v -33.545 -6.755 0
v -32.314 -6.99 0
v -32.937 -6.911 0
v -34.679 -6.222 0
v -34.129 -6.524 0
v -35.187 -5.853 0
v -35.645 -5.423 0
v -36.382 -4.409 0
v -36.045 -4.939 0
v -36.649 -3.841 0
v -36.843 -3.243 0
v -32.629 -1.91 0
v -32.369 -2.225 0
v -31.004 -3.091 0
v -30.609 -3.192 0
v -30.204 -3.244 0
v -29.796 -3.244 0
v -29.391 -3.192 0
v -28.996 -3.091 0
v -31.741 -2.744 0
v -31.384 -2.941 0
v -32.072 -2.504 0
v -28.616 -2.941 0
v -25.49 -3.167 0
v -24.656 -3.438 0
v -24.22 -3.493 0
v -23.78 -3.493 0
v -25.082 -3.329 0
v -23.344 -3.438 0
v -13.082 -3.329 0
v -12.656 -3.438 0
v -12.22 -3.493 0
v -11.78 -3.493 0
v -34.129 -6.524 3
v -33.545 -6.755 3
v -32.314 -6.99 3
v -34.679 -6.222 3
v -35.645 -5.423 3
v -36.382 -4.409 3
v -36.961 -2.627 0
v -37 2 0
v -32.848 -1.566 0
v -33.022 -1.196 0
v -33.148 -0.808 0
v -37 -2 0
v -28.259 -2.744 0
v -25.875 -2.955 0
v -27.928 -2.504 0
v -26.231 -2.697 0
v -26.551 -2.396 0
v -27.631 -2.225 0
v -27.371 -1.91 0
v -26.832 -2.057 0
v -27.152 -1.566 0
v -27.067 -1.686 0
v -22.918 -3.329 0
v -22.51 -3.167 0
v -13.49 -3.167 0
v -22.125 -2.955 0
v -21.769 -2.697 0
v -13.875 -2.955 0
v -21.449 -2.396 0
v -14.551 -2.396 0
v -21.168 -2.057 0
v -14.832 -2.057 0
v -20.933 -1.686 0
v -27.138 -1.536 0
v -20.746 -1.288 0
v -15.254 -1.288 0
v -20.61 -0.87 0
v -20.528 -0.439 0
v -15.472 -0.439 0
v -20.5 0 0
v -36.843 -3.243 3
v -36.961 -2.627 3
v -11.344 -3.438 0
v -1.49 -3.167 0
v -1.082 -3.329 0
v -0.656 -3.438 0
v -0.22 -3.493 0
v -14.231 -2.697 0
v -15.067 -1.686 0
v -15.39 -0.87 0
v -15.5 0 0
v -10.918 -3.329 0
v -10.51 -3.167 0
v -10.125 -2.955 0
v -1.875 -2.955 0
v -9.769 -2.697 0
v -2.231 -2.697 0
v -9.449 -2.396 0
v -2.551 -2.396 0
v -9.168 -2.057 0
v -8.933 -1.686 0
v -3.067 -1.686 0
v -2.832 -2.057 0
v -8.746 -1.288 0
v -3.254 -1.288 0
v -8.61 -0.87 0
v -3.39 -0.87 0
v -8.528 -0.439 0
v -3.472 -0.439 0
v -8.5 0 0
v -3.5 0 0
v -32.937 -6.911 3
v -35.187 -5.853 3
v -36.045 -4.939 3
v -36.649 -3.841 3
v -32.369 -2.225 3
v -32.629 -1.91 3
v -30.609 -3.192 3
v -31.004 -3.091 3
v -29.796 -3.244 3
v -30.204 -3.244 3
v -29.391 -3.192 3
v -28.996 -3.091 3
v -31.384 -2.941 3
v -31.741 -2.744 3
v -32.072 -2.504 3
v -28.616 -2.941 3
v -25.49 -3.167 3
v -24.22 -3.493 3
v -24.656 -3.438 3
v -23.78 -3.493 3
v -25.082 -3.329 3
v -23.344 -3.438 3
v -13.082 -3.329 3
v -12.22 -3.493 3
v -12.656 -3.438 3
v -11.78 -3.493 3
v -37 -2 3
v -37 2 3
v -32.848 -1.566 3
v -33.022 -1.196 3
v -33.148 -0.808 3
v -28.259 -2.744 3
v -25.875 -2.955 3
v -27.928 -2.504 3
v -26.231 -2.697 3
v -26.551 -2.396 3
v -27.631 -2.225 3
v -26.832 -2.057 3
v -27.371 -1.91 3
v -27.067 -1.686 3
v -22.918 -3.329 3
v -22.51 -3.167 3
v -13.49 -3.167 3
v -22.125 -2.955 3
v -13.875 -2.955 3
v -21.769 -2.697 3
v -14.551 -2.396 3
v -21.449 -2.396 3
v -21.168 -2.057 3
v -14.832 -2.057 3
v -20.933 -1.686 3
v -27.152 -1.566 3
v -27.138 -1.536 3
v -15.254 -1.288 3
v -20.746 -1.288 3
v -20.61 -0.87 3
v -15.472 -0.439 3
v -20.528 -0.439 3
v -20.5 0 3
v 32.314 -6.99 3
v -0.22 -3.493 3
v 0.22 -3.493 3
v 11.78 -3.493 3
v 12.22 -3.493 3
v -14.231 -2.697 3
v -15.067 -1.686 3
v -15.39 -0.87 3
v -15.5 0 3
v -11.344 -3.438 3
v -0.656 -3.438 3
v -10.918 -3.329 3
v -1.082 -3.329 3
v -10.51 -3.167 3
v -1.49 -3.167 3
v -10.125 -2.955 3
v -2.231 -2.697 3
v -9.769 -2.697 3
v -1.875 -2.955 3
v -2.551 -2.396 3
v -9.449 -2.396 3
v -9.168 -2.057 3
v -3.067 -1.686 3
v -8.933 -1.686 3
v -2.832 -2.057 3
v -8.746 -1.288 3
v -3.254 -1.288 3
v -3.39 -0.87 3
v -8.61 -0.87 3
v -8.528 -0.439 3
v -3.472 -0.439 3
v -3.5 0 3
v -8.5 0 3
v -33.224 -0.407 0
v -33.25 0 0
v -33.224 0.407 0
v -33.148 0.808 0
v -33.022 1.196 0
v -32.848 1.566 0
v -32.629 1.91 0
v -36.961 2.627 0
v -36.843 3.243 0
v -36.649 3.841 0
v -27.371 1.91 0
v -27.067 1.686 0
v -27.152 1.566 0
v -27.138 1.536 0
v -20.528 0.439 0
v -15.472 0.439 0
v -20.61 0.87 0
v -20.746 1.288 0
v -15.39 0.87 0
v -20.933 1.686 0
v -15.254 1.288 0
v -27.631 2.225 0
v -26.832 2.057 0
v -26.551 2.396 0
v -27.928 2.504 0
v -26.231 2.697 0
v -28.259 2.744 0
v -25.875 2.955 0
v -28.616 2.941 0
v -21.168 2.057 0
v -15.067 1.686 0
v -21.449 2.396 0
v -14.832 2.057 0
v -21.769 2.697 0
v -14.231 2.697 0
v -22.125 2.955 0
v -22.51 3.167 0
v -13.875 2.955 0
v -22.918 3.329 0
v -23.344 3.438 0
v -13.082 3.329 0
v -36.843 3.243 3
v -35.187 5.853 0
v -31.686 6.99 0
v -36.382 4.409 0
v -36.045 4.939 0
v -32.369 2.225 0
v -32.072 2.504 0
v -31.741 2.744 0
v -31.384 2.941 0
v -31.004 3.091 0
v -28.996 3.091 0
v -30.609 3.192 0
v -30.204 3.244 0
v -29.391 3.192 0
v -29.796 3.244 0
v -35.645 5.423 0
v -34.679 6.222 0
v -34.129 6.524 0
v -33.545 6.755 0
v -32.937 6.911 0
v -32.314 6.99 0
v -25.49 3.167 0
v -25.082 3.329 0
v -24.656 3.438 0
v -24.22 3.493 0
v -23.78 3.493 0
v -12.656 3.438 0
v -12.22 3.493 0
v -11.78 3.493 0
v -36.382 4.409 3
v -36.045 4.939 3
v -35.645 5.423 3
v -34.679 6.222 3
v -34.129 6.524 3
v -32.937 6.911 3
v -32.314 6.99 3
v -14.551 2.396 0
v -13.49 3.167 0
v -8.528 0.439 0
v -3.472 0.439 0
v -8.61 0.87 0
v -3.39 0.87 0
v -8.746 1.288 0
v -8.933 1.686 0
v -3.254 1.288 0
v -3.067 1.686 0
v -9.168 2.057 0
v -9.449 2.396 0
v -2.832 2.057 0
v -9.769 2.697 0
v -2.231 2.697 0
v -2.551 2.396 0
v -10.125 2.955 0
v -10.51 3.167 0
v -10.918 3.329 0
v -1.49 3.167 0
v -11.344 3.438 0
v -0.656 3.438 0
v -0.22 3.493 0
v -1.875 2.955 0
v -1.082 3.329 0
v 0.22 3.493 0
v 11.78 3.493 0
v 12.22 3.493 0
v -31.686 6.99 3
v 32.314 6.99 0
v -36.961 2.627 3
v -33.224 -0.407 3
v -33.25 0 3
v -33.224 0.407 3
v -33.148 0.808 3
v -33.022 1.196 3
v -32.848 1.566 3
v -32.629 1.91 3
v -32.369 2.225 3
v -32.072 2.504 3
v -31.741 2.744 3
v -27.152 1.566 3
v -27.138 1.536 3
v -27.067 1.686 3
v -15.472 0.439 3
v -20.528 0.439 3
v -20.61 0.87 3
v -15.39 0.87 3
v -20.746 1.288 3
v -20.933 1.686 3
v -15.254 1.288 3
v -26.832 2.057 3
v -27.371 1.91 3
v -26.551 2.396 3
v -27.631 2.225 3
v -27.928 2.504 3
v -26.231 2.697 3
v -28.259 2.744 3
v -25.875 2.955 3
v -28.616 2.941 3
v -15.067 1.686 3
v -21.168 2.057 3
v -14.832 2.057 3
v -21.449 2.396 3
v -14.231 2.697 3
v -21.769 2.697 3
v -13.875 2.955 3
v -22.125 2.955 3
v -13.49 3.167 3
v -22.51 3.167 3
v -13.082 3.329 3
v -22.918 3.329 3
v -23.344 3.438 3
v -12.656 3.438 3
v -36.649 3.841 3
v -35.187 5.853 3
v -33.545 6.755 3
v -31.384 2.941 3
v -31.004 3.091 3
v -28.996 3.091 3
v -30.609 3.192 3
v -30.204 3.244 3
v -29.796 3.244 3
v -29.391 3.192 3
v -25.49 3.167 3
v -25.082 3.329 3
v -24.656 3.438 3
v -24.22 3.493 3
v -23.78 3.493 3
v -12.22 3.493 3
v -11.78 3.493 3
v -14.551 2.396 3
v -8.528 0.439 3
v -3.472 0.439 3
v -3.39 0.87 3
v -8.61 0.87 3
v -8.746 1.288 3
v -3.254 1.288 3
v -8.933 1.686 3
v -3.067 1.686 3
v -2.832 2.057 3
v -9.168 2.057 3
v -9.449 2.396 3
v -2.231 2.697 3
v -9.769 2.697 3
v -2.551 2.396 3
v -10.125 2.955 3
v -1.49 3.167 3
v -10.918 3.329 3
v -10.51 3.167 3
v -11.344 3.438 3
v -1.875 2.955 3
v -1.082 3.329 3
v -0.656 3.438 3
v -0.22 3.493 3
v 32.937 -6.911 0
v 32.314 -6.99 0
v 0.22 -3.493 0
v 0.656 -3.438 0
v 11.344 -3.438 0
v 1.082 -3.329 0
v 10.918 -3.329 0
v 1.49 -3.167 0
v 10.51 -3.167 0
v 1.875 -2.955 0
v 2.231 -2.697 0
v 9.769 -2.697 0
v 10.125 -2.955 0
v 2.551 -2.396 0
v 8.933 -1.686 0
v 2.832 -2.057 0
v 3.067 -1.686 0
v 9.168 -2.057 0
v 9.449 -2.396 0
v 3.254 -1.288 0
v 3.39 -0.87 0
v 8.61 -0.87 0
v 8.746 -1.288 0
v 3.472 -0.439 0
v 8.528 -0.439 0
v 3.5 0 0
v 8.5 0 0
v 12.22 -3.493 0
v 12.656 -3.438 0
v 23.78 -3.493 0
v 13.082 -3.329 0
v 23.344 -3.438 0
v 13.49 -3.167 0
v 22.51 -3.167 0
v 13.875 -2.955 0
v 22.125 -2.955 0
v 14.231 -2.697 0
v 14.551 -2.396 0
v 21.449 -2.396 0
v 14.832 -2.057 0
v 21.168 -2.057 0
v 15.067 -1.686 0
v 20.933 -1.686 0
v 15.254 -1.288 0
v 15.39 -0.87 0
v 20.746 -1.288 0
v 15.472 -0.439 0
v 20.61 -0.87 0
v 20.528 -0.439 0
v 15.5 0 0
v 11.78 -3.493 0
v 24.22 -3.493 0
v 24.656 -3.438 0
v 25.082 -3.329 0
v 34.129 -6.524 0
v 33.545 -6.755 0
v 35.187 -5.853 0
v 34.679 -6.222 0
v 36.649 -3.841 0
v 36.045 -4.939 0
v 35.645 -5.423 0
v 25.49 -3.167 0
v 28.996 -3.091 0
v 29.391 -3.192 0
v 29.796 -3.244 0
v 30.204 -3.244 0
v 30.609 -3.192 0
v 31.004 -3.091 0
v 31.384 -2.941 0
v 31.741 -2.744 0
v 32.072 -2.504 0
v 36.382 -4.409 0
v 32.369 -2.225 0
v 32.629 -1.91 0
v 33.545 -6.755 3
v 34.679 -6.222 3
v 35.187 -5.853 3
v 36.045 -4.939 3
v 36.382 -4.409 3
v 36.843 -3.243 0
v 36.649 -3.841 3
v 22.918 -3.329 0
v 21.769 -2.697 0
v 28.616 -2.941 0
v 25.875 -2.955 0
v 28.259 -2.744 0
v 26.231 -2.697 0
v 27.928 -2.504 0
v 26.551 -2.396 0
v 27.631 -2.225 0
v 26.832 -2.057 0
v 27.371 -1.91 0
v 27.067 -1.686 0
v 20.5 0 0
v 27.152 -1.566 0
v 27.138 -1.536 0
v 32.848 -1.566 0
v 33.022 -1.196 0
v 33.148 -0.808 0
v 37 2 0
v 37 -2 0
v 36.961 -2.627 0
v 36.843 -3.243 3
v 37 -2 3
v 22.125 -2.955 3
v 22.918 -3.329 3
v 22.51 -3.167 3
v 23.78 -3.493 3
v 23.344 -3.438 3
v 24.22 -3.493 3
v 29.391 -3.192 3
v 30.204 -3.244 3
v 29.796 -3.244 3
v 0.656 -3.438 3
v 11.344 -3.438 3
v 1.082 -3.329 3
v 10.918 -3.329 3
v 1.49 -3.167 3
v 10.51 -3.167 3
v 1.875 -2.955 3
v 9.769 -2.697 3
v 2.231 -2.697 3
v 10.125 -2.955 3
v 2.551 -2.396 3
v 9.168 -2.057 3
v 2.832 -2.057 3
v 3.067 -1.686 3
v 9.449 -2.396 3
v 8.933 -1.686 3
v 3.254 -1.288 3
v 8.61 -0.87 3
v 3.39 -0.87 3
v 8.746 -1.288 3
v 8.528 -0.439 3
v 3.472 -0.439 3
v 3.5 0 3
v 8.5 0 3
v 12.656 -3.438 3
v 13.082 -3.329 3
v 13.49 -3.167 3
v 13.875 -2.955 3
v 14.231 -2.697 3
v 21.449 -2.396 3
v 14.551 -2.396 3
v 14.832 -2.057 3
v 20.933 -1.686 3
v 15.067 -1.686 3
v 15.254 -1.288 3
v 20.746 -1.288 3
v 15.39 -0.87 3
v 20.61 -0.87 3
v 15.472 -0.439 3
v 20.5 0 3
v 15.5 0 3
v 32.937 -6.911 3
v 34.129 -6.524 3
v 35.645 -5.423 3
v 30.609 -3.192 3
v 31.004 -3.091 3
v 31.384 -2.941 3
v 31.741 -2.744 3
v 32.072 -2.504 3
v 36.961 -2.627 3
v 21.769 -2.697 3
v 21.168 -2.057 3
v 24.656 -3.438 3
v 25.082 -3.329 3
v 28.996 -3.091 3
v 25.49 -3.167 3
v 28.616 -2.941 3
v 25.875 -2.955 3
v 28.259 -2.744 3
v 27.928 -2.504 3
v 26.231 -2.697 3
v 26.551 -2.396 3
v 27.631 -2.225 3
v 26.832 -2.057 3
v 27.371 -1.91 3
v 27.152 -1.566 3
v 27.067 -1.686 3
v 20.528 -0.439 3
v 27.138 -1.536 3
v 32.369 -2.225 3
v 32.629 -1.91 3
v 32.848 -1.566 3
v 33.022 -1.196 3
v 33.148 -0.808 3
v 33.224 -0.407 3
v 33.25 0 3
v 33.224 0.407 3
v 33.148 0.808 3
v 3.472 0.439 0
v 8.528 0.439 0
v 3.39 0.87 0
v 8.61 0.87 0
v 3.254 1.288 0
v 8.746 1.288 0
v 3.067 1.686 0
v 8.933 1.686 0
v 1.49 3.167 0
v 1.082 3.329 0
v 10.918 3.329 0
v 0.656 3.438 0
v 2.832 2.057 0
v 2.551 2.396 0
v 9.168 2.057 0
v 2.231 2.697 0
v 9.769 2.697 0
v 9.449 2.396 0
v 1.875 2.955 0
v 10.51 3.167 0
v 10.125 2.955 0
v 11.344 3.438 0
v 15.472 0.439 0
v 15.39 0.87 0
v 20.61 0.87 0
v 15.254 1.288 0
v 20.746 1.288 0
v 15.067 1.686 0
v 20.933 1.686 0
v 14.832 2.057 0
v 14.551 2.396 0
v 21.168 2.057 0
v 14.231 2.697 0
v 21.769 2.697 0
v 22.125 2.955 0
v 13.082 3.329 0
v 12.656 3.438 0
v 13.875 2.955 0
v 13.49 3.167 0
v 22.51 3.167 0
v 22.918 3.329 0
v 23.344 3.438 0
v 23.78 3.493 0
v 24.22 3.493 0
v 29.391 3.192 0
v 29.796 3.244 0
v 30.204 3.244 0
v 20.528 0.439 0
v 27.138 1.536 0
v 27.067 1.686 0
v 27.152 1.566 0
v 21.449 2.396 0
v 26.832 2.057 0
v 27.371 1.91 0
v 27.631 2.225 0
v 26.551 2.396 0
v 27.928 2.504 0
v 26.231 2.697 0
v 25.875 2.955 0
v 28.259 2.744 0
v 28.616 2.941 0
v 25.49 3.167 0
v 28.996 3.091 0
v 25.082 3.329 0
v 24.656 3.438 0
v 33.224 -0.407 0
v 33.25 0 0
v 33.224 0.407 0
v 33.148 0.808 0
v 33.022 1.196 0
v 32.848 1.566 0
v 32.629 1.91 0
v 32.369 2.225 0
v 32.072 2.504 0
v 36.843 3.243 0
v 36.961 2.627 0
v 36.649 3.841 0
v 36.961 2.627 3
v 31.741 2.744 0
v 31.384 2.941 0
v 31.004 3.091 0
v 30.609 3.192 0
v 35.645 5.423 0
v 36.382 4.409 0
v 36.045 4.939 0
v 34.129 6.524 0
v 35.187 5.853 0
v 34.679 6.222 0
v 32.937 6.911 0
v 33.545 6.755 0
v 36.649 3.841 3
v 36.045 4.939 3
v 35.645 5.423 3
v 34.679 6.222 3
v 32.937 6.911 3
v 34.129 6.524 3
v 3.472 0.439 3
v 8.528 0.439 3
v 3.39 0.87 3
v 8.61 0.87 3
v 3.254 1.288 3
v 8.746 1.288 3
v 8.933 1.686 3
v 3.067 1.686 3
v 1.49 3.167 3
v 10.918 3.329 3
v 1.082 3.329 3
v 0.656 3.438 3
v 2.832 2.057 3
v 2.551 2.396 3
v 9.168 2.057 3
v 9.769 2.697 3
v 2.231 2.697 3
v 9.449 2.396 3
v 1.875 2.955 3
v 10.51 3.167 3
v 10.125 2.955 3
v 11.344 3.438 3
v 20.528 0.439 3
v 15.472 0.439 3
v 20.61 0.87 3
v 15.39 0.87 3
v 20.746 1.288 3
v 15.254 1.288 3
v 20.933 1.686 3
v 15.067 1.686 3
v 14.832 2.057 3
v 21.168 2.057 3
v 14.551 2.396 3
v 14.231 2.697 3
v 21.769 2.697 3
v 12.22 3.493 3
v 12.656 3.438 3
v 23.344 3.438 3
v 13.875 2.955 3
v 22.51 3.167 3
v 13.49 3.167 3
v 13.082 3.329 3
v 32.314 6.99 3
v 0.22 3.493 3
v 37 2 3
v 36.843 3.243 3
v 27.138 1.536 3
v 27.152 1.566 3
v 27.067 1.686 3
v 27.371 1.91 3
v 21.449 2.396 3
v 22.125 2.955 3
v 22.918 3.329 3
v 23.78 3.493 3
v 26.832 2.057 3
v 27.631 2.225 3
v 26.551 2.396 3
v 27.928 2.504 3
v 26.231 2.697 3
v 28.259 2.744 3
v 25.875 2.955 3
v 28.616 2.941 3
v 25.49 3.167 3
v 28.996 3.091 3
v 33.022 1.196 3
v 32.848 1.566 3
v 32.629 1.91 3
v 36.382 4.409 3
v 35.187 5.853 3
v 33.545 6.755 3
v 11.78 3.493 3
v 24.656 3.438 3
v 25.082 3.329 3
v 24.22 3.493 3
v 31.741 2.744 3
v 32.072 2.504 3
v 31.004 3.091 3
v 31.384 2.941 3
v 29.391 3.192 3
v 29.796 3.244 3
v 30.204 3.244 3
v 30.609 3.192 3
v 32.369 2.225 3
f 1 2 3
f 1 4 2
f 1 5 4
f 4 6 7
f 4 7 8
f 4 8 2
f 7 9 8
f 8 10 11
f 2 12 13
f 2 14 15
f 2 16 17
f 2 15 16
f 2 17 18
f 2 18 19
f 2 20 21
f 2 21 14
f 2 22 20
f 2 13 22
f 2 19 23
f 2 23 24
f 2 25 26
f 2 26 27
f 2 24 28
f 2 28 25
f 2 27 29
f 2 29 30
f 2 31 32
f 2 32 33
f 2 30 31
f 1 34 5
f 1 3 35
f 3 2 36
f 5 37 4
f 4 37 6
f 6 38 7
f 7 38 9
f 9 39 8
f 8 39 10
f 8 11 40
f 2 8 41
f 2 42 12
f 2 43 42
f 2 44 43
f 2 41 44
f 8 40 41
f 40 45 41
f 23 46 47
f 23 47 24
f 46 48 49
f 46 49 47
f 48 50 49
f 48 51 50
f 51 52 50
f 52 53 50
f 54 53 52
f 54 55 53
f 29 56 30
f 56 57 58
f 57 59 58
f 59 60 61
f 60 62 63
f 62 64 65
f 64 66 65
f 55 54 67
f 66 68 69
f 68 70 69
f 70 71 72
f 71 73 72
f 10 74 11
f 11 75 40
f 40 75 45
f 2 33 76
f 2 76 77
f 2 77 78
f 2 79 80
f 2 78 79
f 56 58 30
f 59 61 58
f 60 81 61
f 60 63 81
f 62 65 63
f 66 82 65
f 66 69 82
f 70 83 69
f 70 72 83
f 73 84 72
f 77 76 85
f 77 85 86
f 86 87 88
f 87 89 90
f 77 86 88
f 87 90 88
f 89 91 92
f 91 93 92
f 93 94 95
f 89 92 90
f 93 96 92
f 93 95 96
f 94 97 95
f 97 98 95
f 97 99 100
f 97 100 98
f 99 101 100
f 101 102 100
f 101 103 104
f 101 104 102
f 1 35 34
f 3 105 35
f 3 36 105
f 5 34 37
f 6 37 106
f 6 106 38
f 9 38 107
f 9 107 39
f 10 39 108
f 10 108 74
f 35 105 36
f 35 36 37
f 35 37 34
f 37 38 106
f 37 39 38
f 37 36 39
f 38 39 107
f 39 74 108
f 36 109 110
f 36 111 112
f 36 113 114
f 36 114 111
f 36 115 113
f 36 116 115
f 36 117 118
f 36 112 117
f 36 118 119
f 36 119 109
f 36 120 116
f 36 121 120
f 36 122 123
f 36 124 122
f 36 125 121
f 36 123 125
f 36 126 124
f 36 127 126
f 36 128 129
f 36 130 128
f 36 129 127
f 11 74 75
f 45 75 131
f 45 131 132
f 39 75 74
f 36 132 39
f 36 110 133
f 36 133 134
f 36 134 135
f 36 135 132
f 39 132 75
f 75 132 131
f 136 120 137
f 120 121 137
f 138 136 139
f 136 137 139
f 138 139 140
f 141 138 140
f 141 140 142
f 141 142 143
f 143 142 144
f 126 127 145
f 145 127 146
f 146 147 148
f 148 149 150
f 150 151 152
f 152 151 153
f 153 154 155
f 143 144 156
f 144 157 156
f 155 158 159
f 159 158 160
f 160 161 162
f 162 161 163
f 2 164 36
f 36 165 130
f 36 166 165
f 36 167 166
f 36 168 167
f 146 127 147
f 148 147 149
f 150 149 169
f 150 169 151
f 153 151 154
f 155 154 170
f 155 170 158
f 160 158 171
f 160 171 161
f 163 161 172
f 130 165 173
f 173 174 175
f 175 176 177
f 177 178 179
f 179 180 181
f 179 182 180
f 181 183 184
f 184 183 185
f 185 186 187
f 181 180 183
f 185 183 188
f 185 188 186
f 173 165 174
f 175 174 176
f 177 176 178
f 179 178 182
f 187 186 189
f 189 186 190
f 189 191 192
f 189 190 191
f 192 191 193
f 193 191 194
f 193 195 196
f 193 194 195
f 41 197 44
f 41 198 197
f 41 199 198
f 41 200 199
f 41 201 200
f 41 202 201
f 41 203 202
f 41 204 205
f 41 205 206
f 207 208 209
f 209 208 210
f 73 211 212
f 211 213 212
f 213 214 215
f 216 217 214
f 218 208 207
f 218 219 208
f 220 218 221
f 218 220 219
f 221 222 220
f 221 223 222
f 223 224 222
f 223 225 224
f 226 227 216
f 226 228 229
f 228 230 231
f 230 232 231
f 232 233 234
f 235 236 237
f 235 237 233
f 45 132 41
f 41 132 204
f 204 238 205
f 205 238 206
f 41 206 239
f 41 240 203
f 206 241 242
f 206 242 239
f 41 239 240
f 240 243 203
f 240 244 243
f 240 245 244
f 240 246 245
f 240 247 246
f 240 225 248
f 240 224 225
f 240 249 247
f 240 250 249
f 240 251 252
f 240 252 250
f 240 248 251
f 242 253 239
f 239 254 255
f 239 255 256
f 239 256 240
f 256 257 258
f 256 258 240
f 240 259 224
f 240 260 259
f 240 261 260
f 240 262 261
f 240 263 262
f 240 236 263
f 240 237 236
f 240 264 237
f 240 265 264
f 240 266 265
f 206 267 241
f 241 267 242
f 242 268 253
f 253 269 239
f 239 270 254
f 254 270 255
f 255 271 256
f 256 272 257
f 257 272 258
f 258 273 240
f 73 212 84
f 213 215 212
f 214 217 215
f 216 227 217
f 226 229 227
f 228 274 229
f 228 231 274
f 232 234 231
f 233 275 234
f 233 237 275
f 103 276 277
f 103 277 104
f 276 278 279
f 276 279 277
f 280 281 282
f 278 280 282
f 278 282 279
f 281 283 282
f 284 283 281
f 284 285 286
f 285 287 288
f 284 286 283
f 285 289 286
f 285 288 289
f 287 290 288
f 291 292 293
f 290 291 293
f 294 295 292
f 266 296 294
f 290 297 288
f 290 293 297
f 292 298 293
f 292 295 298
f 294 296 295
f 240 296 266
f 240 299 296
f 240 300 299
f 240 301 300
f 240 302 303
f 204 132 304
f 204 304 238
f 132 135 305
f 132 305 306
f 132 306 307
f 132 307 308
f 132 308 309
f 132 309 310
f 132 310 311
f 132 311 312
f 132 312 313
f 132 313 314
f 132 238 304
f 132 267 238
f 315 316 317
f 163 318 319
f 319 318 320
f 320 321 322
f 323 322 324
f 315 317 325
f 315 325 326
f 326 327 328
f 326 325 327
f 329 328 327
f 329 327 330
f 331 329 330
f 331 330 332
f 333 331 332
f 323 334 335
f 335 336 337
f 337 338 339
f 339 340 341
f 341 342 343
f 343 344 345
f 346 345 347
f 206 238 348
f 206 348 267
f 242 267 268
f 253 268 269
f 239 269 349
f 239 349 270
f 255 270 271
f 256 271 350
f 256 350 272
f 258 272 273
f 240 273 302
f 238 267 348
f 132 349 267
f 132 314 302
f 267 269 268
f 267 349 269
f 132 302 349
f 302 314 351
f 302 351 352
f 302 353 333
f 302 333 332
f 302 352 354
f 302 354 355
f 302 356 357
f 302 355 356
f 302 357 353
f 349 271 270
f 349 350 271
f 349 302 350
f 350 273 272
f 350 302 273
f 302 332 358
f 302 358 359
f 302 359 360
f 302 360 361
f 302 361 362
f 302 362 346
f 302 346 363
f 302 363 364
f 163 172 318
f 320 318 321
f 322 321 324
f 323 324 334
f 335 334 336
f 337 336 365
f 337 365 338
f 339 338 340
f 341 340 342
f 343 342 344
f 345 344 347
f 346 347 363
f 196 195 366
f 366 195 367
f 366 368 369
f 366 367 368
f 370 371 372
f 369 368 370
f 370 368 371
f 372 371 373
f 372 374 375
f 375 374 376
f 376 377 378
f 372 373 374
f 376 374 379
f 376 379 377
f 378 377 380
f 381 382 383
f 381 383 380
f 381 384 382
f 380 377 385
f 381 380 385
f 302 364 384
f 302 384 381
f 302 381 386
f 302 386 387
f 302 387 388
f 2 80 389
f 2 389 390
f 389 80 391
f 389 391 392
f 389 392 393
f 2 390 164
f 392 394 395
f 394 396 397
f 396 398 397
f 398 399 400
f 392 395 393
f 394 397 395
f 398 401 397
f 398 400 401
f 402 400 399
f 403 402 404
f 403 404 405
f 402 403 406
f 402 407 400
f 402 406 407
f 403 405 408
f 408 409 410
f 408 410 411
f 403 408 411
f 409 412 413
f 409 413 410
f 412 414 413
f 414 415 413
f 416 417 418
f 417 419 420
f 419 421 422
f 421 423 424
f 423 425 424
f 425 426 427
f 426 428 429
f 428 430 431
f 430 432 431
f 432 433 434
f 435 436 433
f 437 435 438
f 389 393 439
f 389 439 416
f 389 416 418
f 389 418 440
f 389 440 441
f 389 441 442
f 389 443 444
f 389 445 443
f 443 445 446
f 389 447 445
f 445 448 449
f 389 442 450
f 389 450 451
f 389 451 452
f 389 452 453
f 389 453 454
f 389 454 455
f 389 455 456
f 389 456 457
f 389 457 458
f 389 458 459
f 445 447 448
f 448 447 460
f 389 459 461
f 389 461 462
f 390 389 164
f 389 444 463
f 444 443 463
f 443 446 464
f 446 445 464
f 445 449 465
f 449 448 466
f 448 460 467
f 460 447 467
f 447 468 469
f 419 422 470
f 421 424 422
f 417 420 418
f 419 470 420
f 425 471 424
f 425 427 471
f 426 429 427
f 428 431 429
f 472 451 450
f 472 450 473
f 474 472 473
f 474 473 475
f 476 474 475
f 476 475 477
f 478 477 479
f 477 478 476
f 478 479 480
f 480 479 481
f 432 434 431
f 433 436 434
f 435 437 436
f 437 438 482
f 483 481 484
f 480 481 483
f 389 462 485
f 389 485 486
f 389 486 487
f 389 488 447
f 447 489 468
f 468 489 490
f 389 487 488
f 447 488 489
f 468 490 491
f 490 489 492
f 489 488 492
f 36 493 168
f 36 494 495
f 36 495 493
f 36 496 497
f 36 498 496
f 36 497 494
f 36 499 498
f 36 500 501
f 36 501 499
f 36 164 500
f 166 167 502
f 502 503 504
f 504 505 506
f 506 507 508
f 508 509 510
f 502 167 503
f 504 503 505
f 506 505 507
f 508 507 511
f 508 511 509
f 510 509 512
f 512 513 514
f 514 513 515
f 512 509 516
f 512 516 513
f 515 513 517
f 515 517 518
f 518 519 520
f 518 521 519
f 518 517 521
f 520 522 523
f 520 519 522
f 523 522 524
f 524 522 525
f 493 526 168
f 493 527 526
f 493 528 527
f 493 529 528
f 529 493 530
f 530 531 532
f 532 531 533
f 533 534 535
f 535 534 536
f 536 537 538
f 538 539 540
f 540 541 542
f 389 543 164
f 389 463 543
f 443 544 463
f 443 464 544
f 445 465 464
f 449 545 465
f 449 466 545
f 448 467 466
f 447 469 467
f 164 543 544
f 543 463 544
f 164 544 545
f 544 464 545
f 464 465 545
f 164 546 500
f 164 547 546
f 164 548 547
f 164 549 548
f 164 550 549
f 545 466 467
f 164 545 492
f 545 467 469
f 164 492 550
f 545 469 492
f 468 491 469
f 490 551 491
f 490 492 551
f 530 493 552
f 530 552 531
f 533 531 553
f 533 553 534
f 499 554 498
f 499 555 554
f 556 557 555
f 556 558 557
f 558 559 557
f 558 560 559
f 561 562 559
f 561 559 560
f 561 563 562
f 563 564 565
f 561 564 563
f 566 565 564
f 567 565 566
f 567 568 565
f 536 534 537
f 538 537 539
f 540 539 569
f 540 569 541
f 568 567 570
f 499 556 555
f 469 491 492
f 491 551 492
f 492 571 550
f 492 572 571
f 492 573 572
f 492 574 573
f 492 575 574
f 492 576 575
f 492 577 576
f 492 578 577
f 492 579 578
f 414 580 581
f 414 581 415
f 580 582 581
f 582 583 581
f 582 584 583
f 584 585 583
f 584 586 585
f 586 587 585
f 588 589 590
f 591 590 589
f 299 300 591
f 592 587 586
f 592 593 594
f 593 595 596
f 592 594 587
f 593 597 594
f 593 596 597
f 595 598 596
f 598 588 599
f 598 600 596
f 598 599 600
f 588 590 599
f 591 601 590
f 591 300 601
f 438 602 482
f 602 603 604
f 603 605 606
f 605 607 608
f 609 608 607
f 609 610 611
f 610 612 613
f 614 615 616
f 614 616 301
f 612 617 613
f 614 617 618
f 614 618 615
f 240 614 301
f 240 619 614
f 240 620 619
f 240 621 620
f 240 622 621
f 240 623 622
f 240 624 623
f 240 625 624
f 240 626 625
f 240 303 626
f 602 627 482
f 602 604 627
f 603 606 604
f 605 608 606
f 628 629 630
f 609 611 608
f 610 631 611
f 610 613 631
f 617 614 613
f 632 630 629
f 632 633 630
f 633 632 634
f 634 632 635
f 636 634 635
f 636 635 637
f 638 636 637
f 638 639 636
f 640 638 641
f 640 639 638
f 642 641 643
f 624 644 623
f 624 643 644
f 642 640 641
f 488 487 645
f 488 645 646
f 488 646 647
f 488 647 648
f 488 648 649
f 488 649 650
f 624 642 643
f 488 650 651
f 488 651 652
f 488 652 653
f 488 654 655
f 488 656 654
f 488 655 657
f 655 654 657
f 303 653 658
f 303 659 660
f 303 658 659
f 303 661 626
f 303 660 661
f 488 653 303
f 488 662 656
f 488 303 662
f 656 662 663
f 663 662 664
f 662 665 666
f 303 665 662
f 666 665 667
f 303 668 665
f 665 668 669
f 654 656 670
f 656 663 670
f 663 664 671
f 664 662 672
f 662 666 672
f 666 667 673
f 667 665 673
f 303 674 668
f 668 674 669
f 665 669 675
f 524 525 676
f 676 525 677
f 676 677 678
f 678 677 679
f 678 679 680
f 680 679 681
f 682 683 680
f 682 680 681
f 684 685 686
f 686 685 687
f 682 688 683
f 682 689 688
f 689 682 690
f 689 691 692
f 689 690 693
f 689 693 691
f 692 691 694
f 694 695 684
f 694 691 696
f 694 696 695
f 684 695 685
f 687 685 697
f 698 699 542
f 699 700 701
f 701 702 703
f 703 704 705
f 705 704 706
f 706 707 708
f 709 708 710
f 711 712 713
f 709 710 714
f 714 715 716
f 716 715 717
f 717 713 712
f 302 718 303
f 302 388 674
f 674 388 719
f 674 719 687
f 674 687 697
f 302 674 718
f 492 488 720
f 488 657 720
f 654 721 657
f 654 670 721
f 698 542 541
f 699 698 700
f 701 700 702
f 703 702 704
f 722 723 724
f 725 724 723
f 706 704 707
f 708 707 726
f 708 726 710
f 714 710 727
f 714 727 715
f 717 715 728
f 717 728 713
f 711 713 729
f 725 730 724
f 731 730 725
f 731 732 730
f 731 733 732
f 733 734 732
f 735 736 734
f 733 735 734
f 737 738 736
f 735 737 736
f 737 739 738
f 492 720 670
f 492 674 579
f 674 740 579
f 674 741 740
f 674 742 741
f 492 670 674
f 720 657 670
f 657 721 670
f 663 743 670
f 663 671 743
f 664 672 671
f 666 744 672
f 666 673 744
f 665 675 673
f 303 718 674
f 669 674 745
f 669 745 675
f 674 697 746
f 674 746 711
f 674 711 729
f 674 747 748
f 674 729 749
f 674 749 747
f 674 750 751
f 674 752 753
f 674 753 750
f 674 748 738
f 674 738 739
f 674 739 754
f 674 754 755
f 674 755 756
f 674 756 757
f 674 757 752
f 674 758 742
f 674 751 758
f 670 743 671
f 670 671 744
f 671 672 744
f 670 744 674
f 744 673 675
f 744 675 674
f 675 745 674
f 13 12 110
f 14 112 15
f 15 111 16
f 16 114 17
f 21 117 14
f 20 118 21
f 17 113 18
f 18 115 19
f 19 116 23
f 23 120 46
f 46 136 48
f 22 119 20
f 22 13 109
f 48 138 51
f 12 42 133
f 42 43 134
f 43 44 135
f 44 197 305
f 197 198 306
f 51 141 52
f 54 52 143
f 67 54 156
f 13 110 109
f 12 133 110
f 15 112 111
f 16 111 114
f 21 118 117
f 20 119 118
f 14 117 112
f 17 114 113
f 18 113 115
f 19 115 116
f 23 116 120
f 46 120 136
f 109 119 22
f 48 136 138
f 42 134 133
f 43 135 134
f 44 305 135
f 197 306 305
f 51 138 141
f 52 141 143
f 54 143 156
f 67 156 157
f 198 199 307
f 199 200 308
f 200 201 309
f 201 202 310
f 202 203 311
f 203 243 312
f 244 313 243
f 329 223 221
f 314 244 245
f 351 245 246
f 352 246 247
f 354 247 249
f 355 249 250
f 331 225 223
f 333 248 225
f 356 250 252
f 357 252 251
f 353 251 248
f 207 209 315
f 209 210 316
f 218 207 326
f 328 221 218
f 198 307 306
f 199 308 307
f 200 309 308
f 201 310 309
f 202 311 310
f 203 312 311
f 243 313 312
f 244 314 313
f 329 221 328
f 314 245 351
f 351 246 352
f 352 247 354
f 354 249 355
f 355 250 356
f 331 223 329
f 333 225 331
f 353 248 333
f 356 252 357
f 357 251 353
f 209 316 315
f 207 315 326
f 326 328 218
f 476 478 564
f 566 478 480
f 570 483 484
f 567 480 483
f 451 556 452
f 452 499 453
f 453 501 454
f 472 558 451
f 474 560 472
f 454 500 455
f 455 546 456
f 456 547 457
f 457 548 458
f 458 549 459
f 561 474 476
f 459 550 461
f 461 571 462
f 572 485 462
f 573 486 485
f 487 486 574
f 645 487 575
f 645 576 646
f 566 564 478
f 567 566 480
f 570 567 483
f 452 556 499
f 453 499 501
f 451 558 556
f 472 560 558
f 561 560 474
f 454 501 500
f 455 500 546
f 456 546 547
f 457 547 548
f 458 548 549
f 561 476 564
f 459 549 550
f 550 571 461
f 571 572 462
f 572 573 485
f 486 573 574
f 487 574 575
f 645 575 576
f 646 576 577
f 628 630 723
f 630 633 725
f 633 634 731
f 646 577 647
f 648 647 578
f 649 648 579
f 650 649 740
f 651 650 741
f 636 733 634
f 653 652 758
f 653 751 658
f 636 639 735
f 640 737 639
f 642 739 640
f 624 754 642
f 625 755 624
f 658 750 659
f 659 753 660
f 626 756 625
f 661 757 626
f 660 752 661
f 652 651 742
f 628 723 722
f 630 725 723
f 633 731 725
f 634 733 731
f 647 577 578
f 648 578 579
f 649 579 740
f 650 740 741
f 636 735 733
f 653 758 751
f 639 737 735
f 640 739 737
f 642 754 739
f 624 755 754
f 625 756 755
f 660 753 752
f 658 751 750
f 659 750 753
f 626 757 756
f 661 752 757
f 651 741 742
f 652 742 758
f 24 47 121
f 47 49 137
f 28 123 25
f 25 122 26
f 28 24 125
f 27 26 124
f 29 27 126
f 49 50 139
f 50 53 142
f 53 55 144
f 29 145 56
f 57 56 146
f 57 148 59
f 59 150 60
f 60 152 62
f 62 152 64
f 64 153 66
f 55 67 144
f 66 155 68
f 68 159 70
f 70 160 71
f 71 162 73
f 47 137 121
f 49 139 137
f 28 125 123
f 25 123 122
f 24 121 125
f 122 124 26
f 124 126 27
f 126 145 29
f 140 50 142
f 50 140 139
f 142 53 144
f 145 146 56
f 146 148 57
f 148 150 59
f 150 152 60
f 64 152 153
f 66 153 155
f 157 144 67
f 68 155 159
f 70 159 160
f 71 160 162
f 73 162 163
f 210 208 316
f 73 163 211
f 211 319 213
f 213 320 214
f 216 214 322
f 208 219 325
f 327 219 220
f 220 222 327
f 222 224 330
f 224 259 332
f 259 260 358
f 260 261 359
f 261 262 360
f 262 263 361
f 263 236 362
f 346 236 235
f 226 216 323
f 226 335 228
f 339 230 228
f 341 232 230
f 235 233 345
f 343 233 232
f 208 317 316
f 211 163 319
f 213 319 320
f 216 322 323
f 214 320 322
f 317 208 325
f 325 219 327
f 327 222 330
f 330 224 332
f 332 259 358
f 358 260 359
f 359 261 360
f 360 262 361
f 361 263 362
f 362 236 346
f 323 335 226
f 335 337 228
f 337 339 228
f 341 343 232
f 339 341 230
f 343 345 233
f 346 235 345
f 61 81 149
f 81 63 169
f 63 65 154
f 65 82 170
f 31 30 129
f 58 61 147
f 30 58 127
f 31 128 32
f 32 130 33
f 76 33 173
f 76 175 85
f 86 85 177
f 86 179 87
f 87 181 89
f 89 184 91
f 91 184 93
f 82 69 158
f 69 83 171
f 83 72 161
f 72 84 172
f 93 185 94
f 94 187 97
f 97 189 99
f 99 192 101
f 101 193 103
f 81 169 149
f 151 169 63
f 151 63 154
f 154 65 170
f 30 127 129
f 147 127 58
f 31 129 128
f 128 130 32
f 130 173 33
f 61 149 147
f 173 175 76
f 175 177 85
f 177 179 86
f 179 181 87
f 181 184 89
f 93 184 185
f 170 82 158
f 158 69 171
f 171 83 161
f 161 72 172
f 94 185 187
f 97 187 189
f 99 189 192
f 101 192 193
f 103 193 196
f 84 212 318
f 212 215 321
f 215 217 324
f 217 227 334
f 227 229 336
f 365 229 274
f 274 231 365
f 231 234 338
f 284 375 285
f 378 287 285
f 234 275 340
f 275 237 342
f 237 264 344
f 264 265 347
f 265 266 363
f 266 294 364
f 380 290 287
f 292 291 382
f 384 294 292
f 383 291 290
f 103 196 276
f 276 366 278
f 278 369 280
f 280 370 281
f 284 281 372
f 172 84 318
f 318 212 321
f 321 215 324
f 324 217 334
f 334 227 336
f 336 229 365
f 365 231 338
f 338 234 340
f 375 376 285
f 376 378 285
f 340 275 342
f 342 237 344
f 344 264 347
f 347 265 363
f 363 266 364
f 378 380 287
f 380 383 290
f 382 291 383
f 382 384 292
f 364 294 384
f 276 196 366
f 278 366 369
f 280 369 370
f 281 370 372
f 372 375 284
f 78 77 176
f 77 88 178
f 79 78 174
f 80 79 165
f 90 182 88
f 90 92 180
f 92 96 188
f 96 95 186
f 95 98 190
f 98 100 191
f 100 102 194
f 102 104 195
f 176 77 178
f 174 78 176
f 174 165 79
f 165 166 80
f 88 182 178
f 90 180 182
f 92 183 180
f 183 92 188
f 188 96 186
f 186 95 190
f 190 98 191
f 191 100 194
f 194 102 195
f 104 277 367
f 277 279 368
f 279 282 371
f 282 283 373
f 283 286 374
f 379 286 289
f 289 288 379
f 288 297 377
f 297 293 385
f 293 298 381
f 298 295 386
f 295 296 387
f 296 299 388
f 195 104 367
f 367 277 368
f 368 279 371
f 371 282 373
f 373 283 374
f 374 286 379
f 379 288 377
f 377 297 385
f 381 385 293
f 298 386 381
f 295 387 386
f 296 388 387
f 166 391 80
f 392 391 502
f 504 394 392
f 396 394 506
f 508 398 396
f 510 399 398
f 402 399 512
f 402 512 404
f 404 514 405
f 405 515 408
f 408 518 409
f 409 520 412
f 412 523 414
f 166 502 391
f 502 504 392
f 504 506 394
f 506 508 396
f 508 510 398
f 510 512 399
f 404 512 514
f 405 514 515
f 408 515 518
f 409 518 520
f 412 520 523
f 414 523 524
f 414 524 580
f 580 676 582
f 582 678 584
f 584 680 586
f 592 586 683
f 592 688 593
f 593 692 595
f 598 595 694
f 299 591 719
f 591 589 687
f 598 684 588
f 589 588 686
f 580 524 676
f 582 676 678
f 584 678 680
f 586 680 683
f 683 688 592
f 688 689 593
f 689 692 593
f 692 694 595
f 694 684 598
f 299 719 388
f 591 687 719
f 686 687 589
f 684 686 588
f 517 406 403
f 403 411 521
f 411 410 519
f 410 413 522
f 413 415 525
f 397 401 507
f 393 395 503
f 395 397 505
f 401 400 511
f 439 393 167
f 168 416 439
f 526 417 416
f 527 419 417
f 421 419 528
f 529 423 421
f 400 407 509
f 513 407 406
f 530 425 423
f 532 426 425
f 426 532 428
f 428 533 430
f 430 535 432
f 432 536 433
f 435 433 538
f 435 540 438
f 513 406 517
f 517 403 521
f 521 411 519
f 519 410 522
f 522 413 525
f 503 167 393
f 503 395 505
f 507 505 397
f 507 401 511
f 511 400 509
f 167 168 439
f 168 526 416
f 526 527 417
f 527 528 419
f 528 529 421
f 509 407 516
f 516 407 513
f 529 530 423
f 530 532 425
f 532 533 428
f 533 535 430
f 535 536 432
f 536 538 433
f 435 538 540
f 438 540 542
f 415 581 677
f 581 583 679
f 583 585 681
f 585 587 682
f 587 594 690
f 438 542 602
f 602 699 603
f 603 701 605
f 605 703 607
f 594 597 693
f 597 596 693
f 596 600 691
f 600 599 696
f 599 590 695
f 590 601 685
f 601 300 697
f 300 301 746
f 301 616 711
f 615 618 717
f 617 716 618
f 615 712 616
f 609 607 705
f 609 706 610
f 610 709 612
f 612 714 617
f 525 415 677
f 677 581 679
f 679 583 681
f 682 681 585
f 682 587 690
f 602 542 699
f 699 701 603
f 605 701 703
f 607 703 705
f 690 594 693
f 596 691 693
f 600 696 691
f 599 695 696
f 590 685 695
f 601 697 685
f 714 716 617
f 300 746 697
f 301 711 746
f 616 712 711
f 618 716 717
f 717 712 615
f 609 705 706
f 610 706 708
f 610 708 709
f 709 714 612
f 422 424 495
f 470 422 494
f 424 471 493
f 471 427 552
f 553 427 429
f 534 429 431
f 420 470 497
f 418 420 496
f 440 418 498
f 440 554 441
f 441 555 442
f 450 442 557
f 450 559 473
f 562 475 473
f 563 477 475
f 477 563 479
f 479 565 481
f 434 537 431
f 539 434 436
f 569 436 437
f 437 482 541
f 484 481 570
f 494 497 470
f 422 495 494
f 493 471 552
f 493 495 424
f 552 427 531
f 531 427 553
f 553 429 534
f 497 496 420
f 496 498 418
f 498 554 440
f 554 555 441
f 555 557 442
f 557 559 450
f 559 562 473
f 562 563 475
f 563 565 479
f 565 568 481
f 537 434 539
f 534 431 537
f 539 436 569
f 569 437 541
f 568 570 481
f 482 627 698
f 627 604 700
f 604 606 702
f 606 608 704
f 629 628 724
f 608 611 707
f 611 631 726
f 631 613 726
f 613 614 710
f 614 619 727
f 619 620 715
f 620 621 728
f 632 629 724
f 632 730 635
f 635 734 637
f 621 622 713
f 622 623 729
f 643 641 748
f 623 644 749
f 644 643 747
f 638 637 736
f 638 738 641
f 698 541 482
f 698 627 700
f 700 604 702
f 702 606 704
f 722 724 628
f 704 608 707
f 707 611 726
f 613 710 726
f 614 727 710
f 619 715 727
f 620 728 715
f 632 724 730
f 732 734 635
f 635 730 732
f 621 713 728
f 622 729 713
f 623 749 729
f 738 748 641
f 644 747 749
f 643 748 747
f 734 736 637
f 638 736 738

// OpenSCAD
$fn = 50;

difference() {
	union() {
		hull() {
			translate(v = [-32.0, 2.0, 0]) {
				cylinder(h = 3, r = 5);
			}
			translate(v = [32.0, 2.0, 0]) {
				cylinder(h = 3, r = 5);
			}
			translate(v = [-32.0, -2.0, 0]) {
				cylinder(h = 3, r = 5);
			}
			translate(v = [32.0, -2.0, 0]) {
				cylinder(h = 3, r = 5);
			}
		}
	}
	union() {
		translate(v = [-30.0, 0.0, -100.0]) {
			cylinder(h = 200, r = 3.25);
		}
		translate(v = [30.0, 0.0, -100.0]) {
			cylinder(h = 200, r = 3.25);
		}
		translate(v = [-30.0, 0.0, -100.0]) {
			cylinder(h = 200, r = 1.8);
		}
		translate(v = [30.0, 0.0, -100.0]) {
			cylinder(h = 200, r = 1.8);
		}
		translate(v = [-24.0, 0, 0.0]) {
			cylinder(h = 3, r = 3.5);
		}
		translate(v = [-12.0, 0, 0.0]) {
			cylinder(h = 3, r = 3.5);
		}
		cylinder(h = 3, r = 3.5);
		translate(v = [12.0, 0, 0.0]) {
			cylinder(h = 3, r = 3.5);
		}
		translate(v = [24.0, 0, 0.0]) {
			cylinder(h = 3, r = 3.5);
		}
	}
}
